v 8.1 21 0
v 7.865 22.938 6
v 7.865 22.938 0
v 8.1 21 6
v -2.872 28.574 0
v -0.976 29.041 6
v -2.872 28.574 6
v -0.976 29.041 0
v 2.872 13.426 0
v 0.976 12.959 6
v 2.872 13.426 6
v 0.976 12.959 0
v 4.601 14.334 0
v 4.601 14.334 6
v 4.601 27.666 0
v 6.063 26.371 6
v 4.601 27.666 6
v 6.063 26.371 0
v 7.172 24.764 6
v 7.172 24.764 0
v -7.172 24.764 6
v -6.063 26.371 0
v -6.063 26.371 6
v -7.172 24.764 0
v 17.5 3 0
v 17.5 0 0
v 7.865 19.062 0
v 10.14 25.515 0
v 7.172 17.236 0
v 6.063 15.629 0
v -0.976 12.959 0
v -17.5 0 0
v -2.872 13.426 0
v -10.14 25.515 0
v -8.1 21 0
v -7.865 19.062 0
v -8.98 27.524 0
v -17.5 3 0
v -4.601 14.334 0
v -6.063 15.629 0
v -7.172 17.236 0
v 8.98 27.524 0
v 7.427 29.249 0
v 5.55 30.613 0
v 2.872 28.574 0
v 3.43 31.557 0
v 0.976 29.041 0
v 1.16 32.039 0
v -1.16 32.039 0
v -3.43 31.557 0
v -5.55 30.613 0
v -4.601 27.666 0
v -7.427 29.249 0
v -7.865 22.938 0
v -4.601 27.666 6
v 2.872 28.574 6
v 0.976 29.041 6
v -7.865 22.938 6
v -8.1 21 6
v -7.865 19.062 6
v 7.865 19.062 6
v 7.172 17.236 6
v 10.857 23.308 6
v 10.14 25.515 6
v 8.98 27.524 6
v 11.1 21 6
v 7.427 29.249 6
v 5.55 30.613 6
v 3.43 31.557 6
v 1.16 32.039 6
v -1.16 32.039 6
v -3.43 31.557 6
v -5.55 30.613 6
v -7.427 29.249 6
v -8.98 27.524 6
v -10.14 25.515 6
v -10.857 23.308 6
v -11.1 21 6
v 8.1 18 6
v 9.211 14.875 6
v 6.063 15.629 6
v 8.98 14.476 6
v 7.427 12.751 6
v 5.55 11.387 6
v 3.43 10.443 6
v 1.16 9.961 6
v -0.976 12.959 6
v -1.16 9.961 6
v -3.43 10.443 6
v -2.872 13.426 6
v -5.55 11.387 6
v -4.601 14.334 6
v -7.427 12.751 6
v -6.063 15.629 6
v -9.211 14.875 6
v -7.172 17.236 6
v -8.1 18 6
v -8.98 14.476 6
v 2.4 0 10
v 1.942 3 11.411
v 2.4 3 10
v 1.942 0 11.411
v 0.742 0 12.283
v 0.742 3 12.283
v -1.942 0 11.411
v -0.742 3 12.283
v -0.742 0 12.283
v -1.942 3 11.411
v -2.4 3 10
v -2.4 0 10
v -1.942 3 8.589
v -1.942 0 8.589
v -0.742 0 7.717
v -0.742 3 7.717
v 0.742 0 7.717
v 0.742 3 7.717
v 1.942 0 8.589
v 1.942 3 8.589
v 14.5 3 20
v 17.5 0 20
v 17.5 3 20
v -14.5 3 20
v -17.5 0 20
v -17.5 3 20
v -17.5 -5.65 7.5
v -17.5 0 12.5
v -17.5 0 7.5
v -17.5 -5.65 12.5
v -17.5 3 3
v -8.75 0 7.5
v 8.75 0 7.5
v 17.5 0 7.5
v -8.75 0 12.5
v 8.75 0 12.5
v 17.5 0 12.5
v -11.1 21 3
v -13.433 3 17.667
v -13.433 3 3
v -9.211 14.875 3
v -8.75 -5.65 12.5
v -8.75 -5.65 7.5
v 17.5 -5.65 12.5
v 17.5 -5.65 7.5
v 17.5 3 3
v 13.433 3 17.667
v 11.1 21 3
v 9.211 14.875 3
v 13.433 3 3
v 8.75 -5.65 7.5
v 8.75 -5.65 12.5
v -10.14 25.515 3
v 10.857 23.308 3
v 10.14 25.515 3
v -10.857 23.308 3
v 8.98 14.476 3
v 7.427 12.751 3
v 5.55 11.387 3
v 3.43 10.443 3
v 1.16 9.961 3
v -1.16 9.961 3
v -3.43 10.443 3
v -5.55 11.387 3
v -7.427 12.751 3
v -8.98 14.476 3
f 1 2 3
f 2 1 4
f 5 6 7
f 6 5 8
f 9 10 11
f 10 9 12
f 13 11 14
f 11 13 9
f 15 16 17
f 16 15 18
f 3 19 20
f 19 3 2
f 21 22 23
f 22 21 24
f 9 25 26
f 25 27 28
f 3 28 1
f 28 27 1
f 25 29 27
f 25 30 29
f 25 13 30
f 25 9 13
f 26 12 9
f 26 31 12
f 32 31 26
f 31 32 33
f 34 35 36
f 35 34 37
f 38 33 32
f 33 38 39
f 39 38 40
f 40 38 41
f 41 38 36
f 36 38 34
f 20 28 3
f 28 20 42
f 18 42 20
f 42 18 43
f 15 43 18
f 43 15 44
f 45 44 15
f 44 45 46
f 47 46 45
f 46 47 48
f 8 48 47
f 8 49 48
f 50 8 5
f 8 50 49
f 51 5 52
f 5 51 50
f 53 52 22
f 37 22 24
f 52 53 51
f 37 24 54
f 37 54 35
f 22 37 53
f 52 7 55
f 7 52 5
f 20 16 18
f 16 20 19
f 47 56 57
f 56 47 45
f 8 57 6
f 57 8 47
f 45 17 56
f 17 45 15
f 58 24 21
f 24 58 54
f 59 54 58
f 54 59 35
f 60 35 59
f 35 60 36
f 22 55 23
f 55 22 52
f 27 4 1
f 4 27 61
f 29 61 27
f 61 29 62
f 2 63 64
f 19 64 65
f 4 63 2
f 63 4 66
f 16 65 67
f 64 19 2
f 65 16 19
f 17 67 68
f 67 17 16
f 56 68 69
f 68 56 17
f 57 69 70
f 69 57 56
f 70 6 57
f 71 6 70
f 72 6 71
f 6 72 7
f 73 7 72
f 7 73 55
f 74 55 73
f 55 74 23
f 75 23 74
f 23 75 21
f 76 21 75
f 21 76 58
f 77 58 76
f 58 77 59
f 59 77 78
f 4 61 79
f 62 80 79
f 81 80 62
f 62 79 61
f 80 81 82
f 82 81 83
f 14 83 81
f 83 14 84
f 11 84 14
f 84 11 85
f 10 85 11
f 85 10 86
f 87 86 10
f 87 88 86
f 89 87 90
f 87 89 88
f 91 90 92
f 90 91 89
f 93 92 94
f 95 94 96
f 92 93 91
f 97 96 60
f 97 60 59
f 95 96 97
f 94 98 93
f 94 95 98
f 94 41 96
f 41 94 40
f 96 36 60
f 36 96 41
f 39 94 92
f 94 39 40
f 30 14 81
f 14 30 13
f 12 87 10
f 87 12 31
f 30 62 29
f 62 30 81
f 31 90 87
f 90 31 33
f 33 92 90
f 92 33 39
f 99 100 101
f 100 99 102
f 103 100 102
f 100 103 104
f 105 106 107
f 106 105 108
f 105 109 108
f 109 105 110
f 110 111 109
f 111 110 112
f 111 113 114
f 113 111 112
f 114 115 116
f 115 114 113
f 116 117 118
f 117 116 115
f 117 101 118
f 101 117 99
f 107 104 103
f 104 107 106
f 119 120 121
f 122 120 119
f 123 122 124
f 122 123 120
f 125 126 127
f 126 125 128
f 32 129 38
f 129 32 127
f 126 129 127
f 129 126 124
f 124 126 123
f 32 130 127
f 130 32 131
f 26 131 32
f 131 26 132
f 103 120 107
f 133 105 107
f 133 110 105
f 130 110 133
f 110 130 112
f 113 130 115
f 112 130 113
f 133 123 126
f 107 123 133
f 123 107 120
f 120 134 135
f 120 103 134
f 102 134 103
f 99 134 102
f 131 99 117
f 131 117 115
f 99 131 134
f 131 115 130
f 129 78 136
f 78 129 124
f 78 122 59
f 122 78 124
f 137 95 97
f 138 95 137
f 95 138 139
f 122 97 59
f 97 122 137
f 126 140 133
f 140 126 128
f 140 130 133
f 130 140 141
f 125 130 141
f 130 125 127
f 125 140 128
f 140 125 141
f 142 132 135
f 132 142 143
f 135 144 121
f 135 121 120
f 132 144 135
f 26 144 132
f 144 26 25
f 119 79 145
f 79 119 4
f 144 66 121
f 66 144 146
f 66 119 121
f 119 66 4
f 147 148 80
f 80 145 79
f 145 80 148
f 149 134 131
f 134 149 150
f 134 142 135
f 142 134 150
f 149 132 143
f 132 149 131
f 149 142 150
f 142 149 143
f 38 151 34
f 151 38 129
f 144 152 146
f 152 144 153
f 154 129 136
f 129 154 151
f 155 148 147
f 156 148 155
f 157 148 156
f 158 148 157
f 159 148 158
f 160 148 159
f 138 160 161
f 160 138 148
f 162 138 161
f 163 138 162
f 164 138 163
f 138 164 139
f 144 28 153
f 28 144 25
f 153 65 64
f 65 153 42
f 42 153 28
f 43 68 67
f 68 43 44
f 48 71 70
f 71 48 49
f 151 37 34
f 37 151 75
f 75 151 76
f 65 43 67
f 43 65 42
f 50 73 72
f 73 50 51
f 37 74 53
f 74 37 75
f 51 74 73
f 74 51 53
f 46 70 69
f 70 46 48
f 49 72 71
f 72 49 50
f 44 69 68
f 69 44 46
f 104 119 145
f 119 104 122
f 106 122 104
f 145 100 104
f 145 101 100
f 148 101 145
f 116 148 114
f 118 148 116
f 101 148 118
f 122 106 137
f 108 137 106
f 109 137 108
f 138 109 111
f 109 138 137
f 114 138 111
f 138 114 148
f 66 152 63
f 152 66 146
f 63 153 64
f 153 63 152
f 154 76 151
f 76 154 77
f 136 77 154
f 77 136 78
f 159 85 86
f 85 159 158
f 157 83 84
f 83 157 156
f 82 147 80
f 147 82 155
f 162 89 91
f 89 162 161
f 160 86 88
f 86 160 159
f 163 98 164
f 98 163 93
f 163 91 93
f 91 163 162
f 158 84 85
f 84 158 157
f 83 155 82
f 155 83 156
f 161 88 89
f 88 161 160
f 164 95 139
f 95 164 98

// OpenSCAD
RODAM_DIAM              = 16+0.2;
RODAM_DIST_PERFIL       = 21-RODAM_DIAM/2;

PERF_RANURA_ANCHO       = 6.3;
PERF_RANURA_PROF        = 5;

SOP_PARED_ESP           = 3;
SOP_ANCHO               = 35;
SOP_ALTO                = 20;
SOP_GUIA_RANURA_ANCHO   = SOP_ANCHO/4;
SOP_TORN_DIAM           = 4+.8;


module zAxisTopGuide()
{
    difference() {
        union() {
            hull() {
                translate([0,SOP_PARED_ESP/2,SOP_PARED_ESP/2]) cube([SOP_ANCHO, SOP_PARED_ESP, SOP_PARED_ESP], center=true);
                translate([0,RODAM_DIST_PERFIL+RODAM_DIAM/2]) cylinder(d=RODAM_DIAM+SOP_PARED_ESP*2, h=SOP_PARED_ESP);
            }
            translate([0,SOP_PARED_ESP/2,SOP_ALTO/2]) cube([SOP_ANCHO, SOP_PARED_ESP, SOP_ALTO], center=true);
            translate([0,RODAM_DIST_PERFIL+RODAM_DIAM/2]) cylinder(d=RODAM_DIAM+SOP_PARED_ESP*2, h=SOP_PARED_ESP*2);
            for(i=[-1,1]) {
                hull() {
                    translate([(SOP_ANCHO/2-SOP_PARED_ESP/2)*i,SOP_PARED_ESP/2,SOP_ALTO/2]) 
                        cube([SOP_PARED_ESP,SOP_PARED_ESP,SOP_ALTO], center=true);
                    translate([(RODAM_DIAM/2+SOP_PARED_ESP/2)*i,RODAM_DIST_PERFIL+RODAM_DIAM/2-SOP_PARED_ESP/2,SOP_PARED_ESP*3/2]) 
                        cube([SOP_PARED_ESP,SOP_PARED_ESP,SOP_PARED_ESP], center=true);
                }
                translate([(SOP_ANCHO/2-SOP_GUIA_RANURA_ANCHO/2)*i,-PERF_RANURA_PROF/2,SOP_ALTO/2]) 
                    cube([SOP_GUIA_RANURA_ANCHO, PERF_RANURA_ANCHO, PERF_RANURA_PROF], center=true);
            }
        }
        color("red", 0.5) {
            translate([0,RODAM_DIST_PERFIL+RODAM_DIAM/2]) cylinder(d=RODAM_DIAM, h=SOP_PARED_ESP*2);
            translate([0,20/2,SOP_ALTO/2]) rotate([90,0,0]) cylinder(d=SOP_TORN_DIAM, h=20, $fn=10);
        }
    }
}

zAxisTopGuide();
